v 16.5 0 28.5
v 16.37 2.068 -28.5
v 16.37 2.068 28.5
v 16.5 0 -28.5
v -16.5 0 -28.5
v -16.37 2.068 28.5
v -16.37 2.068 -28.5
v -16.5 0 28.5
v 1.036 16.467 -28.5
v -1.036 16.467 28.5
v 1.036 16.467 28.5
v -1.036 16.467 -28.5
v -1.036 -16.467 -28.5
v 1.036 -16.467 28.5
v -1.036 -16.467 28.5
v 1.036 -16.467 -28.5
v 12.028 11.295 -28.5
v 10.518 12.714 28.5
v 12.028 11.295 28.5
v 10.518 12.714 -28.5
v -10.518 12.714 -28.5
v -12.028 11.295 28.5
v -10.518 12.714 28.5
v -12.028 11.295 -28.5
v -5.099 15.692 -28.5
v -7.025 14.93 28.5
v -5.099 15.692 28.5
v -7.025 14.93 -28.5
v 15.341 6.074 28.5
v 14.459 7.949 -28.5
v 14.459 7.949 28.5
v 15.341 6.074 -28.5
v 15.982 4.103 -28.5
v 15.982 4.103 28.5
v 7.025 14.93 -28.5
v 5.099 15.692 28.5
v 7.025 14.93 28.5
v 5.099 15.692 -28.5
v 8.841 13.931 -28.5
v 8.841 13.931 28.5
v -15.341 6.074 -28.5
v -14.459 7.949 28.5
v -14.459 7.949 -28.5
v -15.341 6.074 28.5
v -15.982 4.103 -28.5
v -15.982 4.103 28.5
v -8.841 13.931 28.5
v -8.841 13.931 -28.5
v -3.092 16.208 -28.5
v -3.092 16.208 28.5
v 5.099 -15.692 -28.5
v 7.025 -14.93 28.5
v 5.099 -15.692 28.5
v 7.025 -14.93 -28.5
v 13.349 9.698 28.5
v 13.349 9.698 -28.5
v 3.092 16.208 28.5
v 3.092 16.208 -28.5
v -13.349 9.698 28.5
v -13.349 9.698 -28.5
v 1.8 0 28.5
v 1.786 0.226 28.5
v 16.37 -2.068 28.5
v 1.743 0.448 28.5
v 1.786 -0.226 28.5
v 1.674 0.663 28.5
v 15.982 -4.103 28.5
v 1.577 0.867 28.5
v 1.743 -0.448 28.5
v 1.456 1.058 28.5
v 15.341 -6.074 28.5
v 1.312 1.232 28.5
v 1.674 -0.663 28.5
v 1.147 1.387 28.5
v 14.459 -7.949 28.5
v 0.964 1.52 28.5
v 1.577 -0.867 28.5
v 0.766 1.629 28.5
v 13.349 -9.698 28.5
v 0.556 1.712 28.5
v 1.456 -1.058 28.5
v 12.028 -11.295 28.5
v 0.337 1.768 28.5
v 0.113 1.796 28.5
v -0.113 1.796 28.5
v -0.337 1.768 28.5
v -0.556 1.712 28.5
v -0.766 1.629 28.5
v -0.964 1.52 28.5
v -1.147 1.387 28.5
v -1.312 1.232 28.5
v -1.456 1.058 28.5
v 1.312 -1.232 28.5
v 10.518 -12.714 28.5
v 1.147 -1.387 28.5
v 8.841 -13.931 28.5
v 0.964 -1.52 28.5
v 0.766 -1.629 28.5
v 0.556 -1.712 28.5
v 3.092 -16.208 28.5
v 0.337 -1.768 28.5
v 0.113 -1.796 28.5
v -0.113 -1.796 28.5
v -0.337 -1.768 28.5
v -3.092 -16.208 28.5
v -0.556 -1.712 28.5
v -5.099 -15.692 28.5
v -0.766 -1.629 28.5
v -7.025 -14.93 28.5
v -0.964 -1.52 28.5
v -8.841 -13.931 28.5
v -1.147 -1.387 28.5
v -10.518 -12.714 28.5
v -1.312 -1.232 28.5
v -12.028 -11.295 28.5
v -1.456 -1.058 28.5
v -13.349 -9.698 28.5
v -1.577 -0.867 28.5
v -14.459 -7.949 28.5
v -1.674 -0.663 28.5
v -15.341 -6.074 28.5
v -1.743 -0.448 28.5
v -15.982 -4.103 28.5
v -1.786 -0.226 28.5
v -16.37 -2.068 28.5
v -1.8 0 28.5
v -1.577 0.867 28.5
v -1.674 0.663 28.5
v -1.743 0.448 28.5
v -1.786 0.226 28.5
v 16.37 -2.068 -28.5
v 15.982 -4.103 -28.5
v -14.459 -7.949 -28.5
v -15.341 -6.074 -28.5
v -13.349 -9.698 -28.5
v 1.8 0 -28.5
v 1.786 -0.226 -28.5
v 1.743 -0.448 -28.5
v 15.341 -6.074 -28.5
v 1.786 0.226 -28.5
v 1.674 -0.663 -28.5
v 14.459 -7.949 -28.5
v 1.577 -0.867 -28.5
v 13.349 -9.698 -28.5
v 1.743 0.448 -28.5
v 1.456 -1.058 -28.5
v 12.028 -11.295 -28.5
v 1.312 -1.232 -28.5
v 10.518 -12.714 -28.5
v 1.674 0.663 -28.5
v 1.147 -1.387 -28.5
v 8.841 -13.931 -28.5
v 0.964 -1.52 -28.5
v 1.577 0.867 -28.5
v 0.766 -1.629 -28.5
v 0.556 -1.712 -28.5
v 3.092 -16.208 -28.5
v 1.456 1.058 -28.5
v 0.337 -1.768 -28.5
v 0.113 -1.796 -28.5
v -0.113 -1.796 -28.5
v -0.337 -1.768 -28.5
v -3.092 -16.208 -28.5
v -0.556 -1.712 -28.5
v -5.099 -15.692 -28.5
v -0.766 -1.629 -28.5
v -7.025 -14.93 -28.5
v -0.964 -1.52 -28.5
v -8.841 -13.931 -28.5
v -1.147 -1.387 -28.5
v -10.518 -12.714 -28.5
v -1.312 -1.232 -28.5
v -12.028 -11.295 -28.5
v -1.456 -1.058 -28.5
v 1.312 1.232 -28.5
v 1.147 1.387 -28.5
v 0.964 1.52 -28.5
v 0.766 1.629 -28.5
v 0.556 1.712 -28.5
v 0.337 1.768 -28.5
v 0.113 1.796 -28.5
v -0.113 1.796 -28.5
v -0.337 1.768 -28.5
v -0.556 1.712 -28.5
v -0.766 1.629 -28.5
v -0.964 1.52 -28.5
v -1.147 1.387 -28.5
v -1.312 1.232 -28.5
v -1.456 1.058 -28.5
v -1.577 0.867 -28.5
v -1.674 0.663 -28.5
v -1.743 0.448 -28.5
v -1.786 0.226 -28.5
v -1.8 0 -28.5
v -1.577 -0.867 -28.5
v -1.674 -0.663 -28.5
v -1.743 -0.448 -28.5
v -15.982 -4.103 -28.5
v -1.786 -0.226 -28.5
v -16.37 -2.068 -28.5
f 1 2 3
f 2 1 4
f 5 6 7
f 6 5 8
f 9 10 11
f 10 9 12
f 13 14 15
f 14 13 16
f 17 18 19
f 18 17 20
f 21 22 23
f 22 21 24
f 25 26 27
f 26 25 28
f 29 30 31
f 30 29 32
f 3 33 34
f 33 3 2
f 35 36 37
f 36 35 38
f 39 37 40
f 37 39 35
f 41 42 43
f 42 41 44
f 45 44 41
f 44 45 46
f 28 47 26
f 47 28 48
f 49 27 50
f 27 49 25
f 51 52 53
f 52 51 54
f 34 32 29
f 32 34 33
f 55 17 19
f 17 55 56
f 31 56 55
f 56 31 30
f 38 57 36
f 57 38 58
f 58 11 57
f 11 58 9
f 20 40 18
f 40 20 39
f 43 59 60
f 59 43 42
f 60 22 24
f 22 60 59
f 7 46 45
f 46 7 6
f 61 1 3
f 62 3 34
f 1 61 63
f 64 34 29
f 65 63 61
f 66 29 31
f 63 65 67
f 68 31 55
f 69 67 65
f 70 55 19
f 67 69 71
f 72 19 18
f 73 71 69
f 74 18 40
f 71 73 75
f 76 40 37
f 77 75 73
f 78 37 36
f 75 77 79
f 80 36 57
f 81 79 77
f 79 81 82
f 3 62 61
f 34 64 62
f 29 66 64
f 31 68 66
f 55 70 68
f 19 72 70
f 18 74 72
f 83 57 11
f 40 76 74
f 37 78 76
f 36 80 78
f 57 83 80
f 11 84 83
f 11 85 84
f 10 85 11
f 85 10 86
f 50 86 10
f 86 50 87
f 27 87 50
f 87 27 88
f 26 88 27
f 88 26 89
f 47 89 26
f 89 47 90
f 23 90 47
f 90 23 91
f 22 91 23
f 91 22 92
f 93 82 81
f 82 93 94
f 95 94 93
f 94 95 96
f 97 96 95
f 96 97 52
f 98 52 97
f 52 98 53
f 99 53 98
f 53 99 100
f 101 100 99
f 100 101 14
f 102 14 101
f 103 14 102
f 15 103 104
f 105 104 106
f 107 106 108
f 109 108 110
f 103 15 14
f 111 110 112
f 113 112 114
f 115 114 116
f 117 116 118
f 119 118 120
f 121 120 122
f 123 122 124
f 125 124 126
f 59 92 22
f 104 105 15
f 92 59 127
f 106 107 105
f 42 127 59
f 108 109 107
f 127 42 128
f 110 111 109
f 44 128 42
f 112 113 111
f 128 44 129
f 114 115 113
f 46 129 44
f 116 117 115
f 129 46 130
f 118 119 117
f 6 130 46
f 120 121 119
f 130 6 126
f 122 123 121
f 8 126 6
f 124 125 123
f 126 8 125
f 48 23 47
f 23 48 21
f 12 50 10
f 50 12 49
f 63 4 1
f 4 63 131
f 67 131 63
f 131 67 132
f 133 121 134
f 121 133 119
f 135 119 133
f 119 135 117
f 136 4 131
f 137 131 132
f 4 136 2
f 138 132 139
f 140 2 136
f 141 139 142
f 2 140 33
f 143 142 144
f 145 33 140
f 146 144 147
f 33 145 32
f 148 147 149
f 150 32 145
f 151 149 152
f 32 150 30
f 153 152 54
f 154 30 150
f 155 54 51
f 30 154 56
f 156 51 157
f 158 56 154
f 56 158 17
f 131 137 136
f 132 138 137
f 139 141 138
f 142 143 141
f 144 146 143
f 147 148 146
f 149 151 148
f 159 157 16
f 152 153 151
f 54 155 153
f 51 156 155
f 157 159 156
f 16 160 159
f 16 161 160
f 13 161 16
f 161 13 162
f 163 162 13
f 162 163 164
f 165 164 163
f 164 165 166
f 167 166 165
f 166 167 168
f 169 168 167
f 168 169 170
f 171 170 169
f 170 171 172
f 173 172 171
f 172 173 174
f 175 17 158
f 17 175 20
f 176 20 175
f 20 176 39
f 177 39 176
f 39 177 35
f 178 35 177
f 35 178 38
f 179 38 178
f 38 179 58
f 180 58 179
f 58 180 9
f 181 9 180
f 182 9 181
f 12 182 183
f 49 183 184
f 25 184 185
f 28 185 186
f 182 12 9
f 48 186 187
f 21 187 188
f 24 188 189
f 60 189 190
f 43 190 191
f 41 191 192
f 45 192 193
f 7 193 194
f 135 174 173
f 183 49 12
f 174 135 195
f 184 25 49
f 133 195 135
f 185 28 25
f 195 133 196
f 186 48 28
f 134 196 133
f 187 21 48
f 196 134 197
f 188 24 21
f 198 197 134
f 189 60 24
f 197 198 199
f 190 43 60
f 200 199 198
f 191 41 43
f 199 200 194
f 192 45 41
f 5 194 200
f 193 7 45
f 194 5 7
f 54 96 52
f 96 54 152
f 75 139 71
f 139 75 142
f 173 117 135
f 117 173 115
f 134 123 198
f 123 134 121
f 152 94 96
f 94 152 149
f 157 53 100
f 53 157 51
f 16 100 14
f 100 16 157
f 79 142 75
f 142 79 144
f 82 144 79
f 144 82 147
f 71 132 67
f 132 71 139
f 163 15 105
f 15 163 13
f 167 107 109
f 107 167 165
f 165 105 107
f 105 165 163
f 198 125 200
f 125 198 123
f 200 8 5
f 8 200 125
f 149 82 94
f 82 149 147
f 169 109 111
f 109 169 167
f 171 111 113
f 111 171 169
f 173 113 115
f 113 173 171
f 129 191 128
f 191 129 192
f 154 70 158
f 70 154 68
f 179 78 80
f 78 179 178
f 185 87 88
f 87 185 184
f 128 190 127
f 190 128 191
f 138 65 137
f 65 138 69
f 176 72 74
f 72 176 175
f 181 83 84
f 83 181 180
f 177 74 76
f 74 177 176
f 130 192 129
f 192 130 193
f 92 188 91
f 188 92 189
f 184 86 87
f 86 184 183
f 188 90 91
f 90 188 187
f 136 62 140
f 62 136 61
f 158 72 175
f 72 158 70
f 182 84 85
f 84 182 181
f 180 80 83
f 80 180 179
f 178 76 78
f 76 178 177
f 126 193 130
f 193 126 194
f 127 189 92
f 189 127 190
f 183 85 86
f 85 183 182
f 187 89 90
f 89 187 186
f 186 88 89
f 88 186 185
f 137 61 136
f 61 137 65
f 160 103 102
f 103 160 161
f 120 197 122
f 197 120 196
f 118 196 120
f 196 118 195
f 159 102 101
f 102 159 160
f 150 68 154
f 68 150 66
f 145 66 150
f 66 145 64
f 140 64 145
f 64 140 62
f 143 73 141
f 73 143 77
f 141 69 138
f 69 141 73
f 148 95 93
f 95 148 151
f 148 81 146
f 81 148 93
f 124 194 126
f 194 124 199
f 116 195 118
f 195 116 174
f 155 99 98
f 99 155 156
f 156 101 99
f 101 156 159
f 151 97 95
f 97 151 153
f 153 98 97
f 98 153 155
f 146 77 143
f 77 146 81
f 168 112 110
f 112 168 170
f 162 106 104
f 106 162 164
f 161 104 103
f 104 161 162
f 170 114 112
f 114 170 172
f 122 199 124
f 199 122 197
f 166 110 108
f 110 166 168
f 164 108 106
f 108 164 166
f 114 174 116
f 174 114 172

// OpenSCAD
$fn = 50;


difference() {
	union() {
		translate(v = [0, 0, -28.5000000000]) {
			cylinder(h = 57, r = 16.5000000000);
		}
	}
	union() {
		translate(v = [0, 0, -100.0000000000]) {
			cylinder(h = 200, r = 1.8000000000);
		}
	}
}
